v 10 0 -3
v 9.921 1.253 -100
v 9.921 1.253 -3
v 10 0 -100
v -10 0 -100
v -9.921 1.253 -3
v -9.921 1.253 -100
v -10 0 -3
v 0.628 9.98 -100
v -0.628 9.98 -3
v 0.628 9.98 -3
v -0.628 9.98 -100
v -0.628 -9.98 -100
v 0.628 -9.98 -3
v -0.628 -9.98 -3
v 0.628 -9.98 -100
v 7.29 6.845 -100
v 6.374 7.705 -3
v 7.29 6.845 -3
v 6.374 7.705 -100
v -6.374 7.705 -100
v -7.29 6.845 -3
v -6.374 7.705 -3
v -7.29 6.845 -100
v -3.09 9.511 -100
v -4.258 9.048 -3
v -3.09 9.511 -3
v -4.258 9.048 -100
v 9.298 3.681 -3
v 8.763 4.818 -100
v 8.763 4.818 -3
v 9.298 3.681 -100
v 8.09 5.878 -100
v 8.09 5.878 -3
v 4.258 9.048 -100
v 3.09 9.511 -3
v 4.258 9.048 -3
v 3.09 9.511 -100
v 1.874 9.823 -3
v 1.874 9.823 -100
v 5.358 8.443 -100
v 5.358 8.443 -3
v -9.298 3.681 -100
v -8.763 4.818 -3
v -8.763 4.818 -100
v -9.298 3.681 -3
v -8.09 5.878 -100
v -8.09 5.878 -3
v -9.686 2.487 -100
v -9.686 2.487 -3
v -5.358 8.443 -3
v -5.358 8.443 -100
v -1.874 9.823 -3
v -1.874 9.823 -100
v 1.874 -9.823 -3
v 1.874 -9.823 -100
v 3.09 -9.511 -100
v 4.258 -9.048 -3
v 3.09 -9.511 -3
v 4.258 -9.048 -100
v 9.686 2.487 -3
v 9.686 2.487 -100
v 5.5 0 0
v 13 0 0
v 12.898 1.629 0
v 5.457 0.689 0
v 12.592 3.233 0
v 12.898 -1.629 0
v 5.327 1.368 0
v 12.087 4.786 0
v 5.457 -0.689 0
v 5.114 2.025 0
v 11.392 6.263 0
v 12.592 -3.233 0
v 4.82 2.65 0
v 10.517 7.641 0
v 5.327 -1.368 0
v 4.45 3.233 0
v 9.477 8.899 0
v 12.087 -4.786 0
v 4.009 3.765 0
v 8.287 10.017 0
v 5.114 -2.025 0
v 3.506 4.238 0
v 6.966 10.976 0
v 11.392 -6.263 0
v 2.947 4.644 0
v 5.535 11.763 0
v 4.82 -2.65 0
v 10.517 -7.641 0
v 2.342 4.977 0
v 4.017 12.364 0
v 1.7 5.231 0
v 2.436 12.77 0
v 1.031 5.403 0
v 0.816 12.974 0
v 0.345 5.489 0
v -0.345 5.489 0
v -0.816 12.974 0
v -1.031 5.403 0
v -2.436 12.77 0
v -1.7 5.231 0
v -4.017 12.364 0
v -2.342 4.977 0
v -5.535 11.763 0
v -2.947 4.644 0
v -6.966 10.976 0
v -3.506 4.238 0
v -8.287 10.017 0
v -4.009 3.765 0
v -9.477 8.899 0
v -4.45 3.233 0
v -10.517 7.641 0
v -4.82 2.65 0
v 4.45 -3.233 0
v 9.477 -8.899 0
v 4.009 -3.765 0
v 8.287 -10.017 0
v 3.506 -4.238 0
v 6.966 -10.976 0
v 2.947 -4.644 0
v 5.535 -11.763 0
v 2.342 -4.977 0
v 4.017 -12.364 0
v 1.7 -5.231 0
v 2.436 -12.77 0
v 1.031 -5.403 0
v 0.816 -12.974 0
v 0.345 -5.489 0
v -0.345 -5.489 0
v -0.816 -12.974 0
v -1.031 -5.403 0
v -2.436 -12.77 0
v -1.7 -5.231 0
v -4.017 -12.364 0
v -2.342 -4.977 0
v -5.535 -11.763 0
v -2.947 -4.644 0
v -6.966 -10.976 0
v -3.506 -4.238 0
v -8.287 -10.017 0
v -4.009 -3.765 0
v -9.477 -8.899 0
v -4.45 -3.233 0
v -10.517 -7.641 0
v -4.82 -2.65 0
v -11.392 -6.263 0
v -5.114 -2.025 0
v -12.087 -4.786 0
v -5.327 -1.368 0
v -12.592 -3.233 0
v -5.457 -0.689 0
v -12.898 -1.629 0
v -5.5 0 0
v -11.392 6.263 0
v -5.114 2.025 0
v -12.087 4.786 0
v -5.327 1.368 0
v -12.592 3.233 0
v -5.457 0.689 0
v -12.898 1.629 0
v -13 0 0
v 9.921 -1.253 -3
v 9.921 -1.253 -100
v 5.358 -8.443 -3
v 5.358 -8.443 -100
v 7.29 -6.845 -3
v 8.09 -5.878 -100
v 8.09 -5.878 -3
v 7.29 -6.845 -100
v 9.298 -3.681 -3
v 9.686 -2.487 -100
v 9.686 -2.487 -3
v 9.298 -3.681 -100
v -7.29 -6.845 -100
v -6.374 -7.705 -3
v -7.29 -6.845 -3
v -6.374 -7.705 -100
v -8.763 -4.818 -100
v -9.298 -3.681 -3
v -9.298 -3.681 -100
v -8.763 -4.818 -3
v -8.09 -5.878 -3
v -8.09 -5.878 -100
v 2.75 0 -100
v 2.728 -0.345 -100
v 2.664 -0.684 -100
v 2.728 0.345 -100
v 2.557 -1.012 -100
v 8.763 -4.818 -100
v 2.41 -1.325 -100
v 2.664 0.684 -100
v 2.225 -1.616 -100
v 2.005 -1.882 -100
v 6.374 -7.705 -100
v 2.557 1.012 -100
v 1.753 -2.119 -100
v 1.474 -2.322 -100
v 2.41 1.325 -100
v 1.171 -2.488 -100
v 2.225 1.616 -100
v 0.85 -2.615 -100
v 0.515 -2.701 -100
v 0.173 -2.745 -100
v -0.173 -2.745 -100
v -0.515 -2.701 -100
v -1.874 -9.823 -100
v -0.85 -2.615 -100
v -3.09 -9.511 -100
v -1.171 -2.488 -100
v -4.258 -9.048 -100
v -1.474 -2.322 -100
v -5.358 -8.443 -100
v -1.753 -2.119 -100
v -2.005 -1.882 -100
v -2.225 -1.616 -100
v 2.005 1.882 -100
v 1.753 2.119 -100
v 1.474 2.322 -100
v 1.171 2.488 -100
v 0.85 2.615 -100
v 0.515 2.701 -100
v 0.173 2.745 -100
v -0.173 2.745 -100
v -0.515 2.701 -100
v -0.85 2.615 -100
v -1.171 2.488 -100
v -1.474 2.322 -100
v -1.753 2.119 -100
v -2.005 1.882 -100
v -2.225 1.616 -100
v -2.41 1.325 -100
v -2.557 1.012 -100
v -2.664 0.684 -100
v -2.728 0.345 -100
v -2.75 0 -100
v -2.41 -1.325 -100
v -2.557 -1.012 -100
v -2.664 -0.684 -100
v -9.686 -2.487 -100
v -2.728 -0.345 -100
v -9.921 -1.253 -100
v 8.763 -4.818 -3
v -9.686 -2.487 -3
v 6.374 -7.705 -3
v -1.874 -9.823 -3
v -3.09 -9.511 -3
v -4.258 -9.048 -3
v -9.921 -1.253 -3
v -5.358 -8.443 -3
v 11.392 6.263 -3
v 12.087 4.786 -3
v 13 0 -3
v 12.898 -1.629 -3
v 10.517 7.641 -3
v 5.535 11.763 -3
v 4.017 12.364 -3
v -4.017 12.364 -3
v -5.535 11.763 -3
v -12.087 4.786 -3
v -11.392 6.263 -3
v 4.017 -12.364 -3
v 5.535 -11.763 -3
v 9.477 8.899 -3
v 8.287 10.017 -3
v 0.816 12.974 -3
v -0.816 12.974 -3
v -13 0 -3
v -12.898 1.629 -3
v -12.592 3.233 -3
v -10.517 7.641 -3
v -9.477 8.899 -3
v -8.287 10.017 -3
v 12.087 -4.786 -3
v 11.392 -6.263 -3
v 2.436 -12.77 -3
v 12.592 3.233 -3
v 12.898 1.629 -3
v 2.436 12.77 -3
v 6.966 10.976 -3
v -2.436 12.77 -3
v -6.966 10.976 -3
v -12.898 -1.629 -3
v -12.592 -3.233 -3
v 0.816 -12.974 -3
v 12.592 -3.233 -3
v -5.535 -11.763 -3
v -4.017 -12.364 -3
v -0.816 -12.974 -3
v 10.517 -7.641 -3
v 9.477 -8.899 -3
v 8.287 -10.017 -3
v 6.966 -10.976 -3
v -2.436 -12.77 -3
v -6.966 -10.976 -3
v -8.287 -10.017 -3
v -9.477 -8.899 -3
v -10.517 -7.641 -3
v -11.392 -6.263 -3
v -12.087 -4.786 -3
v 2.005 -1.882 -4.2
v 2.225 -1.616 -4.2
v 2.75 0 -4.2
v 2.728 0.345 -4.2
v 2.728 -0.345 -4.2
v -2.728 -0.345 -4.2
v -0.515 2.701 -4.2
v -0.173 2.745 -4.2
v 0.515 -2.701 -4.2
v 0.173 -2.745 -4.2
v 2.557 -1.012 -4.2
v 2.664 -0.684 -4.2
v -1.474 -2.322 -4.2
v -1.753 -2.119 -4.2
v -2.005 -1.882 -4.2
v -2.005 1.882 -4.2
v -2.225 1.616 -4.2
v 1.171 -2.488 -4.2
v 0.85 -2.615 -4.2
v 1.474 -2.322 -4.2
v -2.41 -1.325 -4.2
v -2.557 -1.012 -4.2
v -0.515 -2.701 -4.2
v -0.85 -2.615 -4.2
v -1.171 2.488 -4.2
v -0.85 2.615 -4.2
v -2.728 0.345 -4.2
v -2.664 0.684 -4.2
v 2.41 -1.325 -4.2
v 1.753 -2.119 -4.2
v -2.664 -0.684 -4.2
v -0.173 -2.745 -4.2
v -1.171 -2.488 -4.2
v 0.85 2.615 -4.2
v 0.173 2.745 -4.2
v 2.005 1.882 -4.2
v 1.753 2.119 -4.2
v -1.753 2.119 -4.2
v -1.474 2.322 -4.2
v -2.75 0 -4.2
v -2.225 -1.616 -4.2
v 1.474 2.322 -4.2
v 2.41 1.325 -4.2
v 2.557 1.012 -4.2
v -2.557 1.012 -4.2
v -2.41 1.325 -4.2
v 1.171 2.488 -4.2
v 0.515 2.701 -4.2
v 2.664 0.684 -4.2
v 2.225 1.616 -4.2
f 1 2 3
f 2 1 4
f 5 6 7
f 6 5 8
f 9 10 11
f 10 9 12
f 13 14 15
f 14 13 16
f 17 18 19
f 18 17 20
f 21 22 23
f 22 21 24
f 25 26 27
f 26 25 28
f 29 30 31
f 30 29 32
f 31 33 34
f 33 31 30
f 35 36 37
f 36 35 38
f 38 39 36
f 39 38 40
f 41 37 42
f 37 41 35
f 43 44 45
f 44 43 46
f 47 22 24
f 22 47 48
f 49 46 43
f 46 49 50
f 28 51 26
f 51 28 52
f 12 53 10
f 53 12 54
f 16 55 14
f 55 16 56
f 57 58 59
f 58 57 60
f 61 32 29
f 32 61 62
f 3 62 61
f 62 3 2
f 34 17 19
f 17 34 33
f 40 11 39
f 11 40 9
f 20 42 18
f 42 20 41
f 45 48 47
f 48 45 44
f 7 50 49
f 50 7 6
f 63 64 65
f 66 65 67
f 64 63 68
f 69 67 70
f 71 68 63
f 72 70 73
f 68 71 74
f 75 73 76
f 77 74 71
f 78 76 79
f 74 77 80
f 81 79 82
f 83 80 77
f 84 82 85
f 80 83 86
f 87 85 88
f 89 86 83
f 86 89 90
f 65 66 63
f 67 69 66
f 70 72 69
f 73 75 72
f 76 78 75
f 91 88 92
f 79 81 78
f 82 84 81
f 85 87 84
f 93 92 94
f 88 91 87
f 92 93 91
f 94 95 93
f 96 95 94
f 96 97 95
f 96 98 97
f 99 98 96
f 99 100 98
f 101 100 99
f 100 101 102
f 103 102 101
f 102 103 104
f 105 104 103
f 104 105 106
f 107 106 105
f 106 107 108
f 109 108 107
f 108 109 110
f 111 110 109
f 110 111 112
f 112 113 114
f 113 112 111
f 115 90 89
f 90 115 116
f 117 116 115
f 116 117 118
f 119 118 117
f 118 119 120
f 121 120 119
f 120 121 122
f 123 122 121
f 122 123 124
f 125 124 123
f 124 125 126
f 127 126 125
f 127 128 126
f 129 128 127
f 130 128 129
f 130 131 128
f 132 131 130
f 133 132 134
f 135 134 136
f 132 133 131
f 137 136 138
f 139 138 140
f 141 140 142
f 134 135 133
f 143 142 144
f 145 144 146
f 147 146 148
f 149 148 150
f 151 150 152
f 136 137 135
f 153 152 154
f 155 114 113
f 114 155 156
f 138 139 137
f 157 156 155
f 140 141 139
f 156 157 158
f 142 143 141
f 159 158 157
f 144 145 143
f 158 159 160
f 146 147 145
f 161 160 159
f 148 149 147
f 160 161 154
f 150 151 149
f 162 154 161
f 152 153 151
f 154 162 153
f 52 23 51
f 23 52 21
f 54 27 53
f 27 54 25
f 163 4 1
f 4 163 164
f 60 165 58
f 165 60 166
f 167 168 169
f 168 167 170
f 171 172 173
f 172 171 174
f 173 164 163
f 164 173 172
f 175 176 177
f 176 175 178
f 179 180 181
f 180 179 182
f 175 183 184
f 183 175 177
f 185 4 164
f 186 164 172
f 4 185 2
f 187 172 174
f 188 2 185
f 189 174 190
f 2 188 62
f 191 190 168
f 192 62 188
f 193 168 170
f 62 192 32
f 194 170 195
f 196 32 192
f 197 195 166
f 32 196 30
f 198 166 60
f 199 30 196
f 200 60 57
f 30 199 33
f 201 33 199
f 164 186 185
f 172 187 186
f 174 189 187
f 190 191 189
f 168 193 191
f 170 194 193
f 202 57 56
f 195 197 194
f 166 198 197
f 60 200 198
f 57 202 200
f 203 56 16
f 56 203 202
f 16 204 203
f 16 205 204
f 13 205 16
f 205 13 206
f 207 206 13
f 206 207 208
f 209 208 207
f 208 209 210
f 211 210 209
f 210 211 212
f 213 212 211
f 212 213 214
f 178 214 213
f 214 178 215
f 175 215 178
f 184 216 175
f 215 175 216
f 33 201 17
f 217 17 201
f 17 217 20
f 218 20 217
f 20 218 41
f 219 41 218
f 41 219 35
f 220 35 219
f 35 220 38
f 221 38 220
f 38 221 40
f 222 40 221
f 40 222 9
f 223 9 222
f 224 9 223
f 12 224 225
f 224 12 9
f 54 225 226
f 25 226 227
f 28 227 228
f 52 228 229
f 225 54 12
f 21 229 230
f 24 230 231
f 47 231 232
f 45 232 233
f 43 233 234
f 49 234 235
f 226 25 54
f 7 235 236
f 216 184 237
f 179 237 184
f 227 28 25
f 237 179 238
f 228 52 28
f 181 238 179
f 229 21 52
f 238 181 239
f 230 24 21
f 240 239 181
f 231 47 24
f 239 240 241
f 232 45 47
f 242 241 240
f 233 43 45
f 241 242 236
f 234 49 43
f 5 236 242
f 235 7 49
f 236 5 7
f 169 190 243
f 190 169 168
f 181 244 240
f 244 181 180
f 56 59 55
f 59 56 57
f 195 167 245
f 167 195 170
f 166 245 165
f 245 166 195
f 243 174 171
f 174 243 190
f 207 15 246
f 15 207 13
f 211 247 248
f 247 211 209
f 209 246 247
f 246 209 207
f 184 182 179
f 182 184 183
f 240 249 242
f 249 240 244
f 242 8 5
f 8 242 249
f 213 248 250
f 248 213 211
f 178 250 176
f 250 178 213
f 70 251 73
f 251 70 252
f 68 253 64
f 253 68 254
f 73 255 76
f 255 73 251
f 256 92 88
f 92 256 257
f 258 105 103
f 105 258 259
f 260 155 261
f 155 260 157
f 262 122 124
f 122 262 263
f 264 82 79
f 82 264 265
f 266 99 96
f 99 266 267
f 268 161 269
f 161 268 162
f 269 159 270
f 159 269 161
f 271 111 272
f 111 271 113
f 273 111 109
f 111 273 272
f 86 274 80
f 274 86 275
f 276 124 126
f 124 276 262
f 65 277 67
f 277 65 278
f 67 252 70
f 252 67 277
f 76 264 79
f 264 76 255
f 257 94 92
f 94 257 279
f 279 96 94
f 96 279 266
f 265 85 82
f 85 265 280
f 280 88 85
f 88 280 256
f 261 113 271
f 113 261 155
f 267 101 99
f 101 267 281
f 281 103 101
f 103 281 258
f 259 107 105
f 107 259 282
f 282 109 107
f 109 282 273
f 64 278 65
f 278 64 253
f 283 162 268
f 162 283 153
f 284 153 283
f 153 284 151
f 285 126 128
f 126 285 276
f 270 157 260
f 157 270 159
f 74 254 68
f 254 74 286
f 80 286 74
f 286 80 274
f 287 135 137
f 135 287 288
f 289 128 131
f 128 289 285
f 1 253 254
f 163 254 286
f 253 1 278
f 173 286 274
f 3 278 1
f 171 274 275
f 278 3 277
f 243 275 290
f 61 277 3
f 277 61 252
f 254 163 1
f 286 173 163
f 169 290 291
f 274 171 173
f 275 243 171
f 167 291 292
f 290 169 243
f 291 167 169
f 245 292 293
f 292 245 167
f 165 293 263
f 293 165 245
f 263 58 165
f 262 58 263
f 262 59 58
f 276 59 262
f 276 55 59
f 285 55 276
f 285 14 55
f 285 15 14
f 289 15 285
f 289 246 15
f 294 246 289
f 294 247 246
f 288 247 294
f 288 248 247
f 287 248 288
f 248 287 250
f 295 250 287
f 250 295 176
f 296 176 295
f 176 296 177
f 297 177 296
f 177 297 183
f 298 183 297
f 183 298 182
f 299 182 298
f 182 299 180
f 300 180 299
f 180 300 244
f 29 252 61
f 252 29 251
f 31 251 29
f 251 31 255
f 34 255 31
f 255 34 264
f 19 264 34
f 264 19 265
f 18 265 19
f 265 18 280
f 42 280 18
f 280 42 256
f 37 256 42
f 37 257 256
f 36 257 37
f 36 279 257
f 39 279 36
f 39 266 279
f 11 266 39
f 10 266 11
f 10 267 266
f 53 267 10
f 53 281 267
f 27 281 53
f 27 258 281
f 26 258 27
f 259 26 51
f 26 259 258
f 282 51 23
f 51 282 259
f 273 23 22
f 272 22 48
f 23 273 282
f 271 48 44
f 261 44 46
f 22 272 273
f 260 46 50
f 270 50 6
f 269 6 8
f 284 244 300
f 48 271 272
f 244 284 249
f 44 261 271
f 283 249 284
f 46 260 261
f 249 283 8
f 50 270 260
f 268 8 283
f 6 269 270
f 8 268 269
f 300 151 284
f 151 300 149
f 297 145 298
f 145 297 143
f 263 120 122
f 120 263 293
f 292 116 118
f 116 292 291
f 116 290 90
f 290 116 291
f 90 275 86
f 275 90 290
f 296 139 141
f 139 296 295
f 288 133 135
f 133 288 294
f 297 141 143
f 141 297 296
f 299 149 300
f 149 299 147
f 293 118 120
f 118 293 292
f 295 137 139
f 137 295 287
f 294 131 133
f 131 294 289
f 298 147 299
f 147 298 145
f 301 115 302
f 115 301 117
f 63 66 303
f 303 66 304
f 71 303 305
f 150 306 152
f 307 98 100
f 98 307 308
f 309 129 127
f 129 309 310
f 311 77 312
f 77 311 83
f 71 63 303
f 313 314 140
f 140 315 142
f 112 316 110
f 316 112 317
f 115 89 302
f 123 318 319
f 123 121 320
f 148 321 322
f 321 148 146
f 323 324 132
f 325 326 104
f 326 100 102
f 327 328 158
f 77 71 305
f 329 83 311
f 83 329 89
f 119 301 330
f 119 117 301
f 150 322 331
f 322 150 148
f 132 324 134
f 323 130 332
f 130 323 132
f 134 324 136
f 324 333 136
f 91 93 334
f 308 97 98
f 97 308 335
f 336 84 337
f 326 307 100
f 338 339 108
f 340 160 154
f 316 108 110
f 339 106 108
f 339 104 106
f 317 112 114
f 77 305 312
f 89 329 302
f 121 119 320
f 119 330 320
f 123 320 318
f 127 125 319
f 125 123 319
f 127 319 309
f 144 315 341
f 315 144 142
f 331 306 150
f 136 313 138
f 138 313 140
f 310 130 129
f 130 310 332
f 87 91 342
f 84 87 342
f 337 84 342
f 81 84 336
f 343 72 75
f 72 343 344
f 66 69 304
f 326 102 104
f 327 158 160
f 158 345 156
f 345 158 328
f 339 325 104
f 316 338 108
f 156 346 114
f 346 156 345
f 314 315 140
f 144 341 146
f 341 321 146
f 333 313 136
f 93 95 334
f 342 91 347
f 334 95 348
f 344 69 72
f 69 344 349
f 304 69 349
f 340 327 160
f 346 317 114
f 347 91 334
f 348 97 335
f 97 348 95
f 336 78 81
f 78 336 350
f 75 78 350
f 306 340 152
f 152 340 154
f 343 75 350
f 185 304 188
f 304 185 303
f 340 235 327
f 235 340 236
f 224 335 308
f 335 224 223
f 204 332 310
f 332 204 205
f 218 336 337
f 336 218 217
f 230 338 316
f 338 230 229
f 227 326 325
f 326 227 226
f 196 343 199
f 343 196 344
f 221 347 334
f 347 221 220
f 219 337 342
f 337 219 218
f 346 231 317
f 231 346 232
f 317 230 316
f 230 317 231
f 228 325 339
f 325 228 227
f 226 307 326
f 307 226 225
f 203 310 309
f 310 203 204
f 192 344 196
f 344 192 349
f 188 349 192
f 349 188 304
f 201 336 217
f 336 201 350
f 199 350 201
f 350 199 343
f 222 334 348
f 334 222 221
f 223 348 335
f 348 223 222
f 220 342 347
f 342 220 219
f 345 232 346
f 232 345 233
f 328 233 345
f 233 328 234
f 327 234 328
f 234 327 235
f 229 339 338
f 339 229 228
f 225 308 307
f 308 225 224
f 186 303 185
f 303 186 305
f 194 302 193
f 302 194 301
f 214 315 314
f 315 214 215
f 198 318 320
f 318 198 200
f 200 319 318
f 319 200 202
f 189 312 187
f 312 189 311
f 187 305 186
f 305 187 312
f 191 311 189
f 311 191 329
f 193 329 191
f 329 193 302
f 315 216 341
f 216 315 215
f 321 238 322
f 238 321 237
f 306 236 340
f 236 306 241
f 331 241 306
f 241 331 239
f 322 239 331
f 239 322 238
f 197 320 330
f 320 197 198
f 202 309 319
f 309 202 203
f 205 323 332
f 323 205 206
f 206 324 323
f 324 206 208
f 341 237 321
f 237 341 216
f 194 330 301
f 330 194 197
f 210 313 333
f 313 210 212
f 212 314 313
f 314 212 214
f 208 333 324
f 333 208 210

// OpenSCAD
$fn = 50;


difference() {
	union() {
		translate(v = [0, 0, -100.0000000000]) {
			cylinder(h = 100, r = 10.0000000000);
		}
		translate(v = [0, 0, -3.0000000000]) {
			cylinder(h = 3, r = 13.0000000000);
		}
	}
	union() {
		translate(v = [0, 0, 0]) {
			rotate(a = [0, 0, 0]) {
				difference() {
					union() {
						#translate(v = [0, 0, -100.0000000000]) {
							cylinder(h = 100, r = 2.2500000000);
						}
						#translate(v = [0, 0, -4.2000000000]) {
							cylinder(h = 4.2000000000, r1 = 2.7500000000, r2 = 5.5000000000);
						}
						#translate(v = [0, 0, -100.0000000000]) {
							cylinder(h = 100, r = 2.7500000000);
						}
						#translate(v = [0, 0, -100.0000000000]) {
							cylinder(h = 100, r = 2.2500000000);
						}
					}
					union();
				}
			}
		}
	}
}
